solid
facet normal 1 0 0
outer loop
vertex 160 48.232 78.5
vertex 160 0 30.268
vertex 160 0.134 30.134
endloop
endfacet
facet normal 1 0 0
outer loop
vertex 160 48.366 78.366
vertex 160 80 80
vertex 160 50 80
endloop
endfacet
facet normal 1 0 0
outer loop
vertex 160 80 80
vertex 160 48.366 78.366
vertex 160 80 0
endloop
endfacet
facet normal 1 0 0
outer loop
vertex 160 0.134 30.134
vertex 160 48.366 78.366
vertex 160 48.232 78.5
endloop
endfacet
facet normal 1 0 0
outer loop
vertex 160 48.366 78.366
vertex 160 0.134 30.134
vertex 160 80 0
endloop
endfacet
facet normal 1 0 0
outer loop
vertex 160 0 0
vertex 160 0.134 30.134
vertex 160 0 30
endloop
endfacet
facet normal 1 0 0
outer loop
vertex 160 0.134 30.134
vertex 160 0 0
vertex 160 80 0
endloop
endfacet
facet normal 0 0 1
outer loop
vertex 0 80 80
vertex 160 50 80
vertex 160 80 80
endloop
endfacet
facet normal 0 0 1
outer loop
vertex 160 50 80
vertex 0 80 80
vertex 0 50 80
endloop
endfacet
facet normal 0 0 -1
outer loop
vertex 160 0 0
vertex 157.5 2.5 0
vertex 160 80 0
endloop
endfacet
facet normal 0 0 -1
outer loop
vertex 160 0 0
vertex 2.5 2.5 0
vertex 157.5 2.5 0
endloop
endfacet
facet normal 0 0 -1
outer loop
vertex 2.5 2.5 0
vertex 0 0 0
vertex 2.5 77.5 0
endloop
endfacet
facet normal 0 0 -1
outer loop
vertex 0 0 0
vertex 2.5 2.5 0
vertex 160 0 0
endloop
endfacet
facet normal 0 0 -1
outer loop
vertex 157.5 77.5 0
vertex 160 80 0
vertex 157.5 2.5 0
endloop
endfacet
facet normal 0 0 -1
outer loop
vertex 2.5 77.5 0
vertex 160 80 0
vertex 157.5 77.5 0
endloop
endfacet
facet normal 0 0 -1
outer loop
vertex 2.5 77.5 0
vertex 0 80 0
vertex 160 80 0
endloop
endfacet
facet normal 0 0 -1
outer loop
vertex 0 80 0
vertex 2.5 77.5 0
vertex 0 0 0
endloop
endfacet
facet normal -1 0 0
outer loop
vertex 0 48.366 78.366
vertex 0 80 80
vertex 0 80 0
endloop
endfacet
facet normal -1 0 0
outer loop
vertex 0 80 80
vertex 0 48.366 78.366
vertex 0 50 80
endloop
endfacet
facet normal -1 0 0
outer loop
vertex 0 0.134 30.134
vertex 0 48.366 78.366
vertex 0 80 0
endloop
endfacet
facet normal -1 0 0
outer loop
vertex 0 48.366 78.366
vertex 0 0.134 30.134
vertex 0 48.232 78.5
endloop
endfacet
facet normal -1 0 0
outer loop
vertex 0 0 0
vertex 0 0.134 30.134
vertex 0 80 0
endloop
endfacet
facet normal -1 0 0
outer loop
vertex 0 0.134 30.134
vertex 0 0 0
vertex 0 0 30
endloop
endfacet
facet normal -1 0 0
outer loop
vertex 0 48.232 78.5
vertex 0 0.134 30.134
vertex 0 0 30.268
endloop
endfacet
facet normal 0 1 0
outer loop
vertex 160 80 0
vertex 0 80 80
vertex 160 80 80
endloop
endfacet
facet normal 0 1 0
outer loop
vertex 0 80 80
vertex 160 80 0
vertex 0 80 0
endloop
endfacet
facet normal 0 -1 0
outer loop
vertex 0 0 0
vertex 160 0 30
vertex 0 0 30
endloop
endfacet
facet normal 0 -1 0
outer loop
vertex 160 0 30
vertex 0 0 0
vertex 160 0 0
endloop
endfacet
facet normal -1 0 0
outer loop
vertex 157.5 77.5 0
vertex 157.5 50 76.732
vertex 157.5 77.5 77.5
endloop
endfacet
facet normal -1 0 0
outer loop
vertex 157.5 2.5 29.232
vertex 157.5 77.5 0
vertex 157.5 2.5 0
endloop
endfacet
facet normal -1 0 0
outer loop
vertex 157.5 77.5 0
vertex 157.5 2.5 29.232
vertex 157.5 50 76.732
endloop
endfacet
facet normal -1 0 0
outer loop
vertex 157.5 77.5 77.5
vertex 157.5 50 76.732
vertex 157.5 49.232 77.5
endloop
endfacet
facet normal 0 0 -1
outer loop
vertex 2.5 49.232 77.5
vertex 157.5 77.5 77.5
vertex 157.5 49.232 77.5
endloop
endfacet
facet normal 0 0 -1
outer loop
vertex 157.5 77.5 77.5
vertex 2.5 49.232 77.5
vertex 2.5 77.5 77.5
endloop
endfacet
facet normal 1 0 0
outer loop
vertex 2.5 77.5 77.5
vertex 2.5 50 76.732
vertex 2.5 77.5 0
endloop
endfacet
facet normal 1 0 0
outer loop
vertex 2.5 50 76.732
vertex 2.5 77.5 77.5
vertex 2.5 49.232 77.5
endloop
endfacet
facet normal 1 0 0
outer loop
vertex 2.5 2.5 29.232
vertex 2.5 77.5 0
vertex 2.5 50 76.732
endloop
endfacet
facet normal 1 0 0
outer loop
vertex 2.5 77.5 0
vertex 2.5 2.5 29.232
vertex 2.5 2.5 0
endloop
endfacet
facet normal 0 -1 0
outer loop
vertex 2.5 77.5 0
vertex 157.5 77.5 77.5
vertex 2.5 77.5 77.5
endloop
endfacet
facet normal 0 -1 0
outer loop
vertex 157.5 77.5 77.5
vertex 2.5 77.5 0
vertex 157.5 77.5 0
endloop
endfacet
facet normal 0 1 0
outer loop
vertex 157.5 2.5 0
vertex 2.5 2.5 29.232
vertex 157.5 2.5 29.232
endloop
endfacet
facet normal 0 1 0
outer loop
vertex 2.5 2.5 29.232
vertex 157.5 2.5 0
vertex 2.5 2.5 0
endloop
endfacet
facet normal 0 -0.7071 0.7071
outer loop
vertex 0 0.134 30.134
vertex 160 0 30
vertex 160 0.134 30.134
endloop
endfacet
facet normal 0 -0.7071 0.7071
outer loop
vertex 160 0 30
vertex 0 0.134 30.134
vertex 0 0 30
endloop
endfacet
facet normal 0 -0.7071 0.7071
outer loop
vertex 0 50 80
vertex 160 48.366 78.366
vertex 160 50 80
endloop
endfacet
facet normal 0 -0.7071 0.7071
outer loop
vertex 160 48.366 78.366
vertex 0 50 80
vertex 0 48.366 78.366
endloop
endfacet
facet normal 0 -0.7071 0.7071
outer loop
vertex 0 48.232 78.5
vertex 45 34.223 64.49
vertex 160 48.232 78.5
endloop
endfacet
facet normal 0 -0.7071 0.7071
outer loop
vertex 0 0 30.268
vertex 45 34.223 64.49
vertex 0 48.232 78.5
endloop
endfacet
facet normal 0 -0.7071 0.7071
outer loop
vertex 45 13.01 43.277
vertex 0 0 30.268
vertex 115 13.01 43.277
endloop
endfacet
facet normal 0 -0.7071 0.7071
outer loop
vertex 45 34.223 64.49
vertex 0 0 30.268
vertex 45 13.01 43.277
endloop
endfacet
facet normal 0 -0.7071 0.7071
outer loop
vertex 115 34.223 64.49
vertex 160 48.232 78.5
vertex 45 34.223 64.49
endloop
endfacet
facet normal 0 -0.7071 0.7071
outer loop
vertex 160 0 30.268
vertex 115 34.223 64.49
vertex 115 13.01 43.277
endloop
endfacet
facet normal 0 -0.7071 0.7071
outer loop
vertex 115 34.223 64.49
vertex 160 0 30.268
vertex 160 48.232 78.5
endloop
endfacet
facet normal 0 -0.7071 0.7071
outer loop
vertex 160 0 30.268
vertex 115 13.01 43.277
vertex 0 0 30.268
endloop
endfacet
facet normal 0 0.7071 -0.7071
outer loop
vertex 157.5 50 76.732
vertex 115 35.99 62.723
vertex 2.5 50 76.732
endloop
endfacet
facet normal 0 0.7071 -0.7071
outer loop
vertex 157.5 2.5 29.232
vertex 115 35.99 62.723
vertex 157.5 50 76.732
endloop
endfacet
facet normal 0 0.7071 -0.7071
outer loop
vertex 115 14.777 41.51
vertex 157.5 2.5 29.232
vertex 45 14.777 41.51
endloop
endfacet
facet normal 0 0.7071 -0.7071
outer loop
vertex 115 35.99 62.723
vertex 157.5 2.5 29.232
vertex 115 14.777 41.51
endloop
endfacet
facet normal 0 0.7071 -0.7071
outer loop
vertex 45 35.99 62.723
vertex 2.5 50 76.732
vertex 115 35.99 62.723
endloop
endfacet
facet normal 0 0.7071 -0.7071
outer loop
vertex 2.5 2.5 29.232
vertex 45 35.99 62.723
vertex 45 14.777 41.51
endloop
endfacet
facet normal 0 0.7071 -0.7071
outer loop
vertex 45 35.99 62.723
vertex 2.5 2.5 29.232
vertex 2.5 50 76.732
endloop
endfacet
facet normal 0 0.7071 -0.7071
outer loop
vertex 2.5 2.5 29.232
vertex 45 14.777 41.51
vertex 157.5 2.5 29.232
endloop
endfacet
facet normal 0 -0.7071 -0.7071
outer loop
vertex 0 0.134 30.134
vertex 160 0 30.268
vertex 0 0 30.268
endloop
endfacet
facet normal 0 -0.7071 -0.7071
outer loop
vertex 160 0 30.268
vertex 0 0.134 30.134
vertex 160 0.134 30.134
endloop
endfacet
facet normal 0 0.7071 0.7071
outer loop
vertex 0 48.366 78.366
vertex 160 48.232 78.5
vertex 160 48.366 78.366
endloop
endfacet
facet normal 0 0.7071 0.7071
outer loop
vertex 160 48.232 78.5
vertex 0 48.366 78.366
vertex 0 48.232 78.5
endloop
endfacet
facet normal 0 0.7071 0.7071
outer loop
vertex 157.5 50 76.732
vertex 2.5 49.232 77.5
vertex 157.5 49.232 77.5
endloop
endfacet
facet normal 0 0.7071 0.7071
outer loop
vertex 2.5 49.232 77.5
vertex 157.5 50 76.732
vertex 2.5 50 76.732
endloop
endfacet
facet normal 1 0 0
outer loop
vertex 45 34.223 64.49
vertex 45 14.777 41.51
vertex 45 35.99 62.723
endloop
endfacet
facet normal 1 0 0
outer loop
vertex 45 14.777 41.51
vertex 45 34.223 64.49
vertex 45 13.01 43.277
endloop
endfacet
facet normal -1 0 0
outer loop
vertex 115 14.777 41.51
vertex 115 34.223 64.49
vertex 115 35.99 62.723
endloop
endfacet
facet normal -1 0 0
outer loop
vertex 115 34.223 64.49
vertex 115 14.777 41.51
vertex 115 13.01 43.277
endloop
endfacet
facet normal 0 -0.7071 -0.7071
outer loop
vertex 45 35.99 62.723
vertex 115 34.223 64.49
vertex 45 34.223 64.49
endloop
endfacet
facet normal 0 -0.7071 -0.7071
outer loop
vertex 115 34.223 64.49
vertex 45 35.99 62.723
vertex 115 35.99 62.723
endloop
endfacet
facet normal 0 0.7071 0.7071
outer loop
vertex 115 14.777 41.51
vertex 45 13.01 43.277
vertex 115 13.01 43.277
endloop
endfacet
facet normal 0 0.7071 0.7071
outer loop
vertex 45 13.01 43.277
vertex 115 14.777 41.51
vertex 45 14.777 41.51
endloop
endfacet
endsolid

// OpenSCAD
// enclosure/ink-board.scad
// First-version: hollow box with 45° chamfer on long side
// No fillets, no display slot. Inner cavity clipped so angled face remains solid.

// Parameters
L = 160;      // outer length (mm)
W = 80;       // outer width  (mm)
H = 80;       // outer height (mm)
wall_t = 2.5; // wall thickness (mm)
chamfer = 50; // chamfer height from top (mm)

eps = 1; // small oversize to avoid boolean artifacts

module outer_box() {
  // bottom at Z=0 (open), extend to Z=H
  translate([0, 0, 0]) cube([L, W, H], center=false);
}

module inner_cavity() {
  // inner cavity extends up to leave wall_t at the top (fully hollow enclosure)
  inner_h = max(0, H - wall_t); // cavity height, leave top wall thickness
  inner_x = max(0, L - 2*wall_t);
  inner_y = max(0, W - 2*wall_t);
  translate([wall_t, wall_t, 0]) cube([inner_x, inner_y, inner_h], center=false);
}

module chamfer_wedge() {
  // Triangular prism removed from top-front-long edge
  // Built with linear_extrude of a right triangle as in model.txt
  points = [ [-H - eps, chamfer + eps], [-H - eps, 0], [-H + chamfer, 0] ];
  // rotate so extrusion axis aligns with world X
  rotate([0, 90, 0]) linear_extrude(height = L + 2*eps) polygon(points);
}

// Chamfer panel: solid panel that covers the chamfer face (thickness = wall_t)
module chamfer_panel() {
  // panel centered on chamfer face; small eps oversize to ensure clean booleans
  face_w = chamfer * sqrt(2); // true face width along the angled face
  translate([L/2, chamfer/2, H - chamfer/2 - wall_t + 1])
    rotate([45, 0, 0])
      cube([L, face_w - wall_t, wall_t], center=true);
}

// Display slot parameters
slot_l = 70; // mm (visible width along X)
slot_w = 30; // mm (visible height across face)
slot_cut = wall_t + 4; // cutter depth to ensure full cut-through

module display_slot() {
  // cutter box centered on the chamfer face, rotated so it cuts perpendicular to face
  // Reorder cube dimensions so the face-visible height uses slot_w (30 mm)
  translate([L/2, chamfer/2, H - chamfer/2 - wall_t])
    rotate([45, 0, 0])
      translate([-slot_l/2, -slot_w/2, -slot_cut/2])
        cube([slot_l, slot_w, slot_cut]);
}

// Final model: union of chamfered shell + panel, then subtract the slot so it is centered
difference() {
  union() {
    difference() {
      outer_box();
      inner_cavity();
      chamfer_wedge();
    }
    chamfer_panel();
  }
  display_slot();
}
